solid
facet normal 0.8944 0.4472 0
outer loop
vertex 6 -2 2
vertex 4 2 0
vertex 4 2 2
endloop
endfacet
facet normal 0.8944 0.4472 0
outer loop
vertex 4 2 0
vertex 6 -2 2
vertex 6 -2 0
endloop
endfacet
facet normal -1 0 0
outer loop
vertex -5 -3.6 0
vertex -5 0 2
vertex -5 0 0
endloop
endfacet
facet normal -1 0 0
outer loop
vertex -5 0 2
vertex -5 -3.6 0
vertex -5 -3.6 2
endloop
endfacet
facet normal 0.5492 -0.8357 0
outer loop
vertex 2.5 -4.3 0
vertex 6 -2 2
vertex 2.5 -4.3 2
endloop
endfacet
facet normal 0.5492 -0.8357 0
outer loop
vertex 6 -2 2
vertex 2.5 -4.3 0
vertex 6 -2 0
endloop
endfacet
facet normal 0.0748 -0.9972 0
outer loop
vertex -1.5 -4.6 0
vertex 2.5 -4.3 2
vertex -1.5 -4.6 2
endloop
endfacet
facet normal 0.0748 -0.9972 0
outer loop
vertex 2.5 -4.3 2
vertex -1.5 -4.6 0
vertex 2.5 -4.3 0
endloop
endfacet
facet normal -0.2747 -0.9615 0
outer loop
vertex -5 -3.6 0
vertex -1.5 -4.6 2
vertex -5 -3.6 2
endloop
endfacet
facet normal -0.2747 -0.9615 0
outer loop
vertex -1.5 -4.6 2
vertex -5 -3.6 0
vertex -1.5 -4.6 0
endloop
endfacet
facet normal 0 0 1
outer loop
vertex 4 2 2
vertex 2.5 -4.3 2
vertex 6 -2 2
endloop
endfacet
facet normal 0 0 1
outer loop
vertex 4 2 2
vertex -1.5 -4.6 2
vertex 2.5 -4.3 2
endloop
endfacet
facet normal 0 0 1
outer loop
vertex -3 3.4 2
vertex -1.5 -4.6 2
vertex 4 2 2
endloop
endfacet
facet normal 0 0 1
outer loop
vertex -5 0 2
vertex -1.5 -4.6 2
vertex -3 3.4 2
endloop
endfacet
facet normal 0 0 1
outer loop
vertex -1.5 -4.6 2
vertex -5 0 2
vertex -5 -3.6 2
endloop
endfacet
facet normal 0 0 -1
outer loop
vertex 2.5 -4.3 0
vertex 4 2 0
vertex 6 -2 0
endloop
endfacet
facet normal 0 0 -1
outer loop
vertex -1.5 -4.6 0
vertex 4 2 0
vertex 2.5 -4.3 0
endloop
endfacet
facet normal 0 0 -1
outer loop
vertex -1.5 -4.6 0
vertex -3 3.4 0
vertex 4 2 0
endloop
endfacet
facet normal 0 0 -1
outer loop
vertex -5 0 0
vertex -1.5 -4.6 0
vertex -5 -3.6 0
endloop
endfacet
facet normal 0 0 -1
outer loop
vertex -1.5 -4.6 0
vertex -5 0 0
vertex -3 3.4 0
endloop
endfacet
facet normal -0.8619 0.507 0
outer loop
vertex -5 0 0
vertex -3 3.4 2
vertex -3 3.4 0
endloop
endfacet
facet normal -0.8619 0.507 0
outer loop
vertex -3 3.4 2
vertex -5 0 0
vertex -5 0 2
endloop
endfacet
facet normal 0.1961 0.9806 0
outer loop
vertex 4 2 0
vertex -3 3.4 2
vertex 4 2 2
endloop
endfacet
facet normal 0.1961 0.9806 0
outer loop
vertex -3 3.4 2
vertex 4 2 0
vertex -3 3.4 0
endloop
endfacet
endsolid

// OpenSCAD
// Define the main shape
module main_shape() {
    difference() {
        // Extruded polygon based on observed shape
        linear_extrude(height = 2)
            polygon(points = [[-5, -3.6], [-1.5, -4.6], [2.5, -4.3], [6, -2], [4, 2], [-3, 3.4], [-5, 0]]);
        
        // Subtracting a small cylinder for edge rounding
        translate([-1.5, -4.8, 0]) rotate([90, 0, 0]) 
            cylinder(h = 2, r = 0.7);
    }
}

// Render the object
main_shape();
